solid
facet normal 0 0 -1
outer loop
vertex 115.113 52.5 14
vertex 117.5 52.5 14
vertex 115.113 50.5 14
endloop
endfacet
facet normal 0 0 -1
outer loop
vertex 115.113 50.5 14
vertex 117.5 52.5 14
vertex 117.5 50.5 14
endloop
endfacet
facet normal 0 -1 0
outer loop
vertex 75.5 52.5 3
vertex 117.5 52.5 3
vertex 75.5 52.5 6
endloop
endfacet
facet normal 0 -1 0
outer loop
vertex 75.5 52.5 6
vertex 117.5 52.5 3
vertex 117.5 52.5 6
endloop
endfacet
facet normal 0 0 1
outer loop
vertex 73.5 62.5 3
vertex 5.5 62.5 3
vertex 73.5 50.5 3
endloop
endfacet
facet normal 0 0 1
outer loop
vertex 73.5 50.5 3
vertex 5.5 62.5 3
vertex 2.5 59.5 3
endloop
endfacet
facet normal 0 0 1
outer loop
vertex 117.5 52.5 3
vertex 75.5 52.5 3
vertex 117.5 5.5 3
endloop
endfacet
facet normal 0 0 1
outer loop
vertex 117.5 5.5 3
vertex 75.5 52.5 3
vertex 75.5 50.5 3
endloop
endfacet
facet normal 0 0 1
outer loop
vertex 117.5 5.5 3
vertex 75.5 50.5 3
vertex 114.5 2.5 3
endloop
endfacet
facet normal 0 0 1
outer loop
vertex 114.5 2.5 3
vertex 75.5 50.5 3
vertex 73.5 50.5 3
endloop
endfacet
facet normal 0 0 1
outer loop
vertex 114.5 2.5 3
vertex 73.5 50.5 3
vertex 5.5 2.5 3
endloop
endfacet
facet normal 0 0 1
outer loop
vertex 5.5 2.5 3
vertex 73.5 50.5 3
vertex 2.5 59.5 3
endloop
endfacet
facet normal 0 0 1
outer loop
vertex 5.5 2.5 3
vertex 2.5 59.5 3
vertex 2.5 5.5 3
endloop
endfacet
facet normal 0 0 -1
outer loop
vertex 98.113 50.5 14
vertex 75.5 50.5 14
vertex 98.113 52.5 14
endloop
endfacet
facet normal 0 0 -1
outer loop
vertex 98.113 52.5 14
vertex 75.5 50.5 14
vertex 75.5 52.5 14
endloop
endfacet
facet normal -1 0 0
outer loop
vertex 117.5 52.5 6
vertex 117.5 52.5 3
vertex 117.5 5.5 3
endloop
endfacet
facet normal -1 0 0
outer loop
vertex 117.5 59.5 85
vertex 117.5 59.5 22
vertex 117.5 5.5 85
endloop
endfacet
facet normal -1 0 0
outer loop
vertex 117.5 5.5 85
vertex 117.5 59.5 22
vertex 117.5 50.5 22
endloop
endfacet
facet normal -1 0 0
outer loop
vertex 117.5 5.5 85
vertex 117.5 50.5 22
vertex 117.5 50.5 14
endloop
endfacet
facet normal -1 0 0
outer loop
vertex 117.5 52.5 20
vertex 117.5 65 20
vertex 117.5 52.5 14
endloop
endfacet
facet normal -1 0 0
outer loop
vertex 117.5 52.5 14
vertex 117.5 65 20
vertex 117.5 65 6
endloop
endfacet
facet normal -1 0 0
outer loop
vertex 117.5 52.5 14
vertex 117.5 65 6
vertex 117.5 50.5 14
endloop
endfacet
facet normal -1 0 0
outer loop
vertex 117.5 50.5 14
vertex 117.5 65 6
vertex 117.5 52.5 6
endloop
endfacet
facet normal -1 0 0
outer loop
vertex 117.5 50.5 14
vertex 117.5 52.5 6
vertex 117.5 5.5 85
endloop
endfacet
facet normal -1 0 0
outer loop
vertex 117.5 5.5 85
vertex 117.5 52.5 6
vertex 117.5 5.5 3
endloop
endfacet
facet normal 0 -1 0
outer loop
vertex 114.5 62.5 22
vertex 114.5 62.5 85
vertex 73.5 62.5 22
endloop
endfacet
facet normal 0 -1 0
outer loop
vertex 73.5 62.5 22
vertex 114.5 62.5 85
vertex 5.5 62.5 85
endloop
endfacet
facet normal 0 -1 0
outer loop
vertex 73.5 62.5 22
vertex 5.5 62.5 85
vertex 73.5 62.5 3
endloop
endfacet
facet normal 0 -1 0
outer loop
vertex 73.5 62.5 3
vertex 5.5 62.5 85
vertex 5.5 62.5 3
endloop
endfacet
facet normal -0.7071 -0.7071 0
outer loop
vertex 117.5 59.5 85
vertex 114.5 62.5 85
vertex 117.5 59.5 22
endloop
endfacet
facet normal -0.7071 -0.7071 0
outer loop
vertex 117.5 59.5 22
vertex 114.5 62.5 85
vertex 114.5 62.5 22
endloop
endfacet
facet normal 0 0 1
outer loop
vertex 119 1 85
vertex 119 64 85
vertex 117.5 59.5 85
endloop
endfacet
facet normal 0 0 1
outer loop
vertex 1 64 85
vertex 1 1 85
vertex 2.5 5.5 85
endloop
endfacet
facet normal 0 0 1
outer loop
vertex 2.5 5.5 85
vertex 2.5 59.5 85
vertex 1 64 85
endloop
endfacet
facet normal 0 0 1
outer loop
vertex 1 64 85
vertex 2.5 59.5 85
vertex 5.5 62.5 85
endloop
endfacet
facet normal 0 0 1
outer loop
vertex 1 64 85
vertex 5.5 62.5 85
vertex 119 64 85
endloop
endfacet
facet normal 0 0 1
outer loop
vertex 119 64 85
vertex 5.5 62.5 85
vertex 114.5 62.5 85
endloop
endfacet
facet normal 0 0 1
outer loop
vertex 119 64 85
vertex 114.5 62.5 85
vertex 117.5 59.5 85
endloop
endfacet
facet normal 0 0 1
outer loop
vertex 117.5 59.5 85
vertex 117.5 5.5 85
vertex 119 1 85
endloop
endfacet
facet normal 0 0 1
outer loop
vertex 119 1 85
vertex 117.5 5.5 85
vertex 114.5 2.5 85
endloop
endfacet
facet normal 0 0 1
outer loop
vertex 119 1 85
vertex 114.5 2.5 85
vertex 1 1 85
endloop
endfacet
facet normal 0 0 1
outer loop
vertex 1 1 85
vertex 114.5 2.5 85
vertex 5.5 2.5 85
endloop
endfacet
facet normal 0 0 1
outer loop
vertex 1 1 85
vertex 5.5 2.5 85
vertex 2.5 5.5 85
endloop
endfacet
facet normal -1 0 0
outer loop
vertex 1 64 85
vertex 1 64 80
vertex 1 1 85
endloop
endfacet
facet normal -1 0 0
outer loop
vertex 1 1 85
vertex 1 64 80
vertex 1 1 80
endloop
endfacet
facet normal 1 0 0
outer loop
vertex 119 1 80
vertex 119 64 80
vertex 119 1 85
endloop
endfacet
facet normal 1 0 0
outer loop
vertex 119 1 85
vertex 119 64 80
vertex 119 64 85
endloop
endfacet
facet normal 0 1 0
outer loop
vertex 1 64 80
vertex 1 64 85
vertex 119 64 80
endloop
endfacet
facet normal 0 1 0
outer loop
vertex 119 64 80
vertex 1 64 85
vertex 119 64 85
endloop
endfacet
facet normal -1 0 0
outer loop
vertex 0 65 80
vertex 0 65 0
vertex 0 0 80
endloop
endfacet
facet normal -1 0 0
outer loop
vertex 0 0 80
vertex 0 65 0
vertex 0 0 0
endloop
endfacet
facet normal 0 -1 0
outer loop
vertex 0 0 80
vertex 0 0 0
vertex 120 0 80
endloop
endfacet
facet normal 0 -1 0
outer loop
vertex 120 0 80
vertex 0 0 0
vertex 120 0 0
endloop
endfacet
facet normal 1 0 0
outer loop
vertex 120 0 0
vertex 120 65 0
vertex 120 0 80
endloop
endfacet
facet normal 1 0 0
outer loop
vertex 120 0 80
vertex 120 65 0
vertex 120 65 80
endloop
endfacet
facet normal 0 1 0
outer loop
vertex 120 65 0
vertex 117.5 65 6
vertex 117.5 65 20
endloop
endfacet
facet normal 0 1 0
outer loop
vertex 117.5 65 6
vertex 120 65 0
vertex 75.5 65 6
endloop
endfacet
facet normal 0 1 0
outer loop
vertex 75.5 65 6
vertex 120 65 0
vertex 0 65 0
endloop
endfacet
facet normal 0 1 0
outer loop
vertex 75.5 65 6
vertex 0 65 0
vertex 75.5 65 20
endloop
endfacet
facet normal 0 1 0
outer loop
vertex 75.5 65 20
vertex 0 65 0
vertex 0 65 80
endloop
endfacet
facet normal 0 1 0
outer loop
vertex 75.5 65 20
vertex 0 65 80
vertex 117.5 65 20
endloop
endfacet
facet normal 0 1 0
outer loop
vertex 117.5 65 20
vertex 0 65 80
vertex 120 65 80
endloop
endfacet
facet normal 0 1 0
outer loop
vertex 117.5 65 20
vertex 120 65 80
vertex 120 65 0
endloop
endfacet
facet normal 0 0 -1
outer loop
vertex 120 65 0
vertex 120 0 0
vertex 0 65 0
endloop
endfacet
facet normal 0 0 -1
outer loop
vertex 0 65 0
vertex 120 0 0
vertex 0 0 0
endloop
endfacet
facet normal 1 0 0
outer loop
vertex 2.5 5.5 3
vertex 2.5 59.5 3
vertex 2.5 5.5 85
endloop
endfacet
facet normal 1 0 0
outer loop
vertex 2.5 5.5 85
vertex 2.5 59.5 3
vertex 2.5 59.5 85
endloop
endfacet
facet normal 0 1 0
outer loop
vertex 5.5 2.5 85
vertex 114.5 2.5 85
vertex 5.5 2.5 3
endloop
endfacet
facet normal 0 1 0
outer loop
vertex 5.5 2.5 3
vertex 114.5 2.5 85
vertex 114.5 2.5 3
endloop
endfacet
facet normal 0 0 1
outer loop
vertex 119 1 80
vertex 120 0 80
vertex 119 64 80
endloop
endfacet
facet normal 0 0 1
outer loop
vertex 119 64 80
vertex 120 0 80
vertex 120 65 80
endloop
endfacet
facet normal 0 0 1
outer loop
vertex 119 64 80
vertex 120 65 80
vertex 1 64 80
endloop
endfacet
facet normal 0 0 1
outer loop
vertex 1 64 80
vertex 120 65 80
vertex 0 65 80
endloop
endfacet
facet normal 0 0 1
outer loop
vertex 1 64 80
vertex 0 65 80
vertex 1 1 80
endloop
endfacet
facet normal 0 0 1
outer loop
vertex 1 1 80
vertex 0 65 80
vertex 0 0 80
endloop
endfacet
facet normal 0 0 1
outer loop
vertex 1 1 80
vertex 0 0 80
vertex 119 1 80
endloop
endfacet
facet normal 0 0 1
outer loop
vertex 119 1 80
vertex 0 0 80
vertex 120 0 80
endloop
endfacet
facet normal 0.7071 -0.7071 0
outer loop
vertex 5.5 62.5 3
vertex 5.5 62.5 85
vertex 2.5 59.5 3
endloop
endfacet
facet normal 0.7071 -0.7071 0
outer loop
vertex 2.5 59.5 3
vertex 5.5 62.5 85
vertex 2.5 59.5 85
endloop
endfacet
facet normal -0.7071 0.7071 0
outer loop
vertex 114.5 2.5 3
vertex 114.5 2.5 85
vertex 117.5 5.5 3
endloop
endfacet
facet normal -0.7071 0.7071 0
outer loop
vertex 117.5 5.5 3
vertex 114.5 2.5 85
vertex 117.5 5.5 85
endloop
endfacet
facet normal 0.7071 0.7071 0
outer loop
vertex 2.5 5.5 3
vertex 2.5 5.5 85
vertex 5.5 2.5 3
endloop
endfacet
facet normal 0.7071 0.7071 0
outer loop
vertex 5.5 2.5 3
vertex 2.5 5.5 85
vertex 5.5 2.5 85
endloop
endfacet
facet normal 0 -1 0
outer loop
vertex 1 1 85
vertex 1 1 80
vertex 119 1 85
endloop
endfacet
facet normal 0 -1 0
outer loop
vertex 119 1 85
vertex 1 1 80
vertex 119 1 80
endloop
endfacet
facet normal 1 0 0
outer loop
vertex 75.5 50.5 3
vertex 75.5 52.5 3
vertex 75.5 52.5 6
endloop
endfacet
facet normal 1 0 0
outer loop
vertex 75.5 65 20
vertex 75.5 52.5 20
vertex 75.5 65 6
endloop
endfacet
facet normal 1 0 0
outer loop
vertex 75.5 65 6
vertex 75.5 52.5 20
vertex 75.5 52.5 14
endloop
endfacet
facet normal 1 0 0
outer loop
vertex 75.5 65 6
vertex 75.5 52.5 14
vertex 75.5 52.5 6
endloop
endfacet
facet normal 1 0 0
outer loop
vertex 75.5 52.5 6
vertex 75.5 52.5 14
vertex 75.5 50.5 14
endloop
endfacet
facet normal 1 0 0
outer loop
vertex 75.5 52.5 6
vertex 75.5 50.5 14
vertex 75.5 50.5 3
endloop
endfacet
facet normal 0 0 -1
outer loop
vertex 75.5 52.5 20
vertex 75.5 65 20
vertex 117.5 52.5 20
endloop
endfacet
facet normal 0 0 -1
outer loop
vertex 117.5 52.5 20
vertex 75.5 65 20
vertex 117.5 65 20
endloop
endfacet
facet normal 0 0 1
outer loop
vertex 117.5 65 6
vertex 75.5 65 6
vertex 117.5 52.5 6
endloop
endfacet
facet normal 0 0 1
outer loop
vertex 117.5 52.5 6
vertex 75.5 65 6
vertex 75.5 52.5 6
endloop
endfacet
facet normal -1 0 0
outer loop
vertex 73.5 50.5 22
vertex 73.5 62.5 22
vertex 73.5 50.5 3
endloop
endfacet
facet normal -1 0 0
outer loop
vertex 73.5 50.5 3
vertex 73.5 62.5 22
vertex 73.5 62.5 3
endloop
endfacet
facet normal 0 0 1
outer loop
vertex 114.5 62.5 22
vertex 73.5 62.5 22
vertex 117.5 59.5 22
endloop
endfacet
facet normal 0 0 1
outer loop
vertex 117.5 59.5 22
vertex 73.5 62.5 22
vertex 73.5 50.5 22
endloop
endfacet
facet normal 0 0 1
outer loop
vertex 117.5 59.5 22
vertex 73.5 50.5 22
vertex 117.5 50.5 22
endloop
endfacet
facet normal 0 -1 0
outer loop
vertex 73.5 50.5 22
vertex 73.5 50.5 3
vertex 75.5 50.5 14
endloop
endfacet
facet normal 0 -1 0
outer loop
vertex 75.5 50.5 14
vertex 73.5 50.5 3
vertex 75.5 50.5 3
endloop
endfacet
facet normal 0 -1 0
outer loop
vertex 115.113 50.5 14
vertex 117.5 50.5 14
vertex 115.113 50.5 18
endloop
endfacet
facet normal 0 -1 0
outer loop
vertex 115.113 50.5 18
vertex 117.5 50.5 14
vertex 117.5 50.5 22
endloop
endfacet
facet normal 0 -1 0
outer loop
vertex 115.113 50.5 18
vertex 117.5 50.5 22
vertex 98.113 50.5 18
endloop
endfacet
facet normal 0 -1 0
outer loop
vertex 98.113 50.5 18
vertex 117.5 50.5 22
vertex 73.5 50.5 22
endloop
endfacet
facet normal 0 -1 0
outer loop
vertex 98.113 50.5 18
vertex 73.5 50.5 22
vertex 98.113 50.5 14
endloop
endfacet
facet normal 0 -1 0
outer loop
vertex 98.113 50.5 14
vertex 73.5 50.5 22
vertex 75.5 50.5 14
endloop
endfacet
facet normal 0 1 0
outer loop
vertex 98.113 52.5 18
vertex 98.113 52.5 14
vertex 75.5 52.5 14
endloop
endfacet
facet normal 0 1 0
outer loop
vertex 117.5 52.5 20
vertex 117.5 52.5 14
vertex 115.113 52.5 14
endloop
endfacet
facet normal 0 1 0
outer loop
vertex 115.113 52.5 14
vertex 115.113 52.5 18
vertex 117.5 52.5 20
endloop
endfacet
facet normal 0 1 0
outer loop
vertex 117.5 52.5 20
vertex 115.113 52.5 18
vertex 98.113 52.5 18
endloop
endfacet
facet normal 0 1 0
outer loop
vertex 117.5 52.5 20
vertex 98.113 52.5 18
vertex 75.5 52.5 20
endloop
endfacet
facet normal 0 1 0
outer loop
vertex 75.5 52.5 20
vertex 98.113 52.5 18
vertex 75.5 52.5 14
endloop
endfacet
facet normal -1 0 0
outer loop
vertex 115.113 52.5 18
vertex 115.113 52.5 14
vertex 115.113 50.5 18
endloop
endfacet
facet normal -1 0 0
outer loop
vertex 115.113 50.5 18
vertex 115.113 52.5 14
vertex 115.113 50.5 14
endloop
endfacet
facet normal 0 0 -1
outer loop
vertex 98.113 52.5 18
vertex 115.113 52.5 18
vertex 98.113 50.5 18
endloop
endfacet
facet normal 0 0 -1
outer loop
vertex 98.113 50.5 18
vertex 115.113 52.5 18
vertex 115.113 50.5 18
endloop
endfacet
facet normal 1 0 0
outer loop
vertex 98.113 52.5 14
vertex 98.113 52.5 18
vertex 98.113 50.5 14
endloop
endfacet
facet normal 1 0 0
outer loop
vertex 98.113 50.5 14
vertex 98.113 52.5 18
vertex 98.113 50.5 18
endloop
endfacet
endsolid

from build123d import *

# Parameters (mm, degrees)
SKETCH2_W           = 120
SKETCH2_H           = 65
BOSS_EXTRUDE1_DEPTH = 85
SKETCH3_W           = 115
SKETCH3_H           = 60
CUT_EXTRUDE1_DEPTH  = 82
SKETCH4_W           = 5
SKETCH4_H           = 65
CUT_EXTRUDE2_DEPTH  = 1
SKETCH5_W           = 119
SKETCH5_H           = 5
CUT_EXTRUDE3_DEPTH  = 1
BOSS_EXTRUDE2_DEPTH = 85
SKETCH9_W           = 5
SKETCH9_H           = 64
CUT_EXTRUDE4_DEPTH  = 1
SKETCH10_W          = 118
SKETCH10_H          = 5
CUT_EXTRUDE5_DEPTH  = 1
SKETCH11_W          = 42
SKETCH11_H          = 14
CUT_EXTRUDE6_DEPTH  = 10
SKETCH12_W          = 42.071261004
SKETCH12_H          = 10
BOSS_EXTRUDE3_DEPTH = 4
SKETCH13_W          = 2
SKETCH13_H          = 10
BOSS_EXTRUDE4_DEPTH = 17
SKETCH14_W          = 44.402934601
SKETCH14_H          = 10
BOSS_EXTRUDE5_DEPTH = 2
SKETCH15_W          = 44.064994884
SKETCH15_H          = 8
BOSS_EXTRUDE6_DEPTH = 2
SKETCH16_W          = 2
SKETCH16_H          = 2
BOSS_EXTRUDE7_DEPTH = 12
SKETCH17_W          = 17
SKETCH17_H          = 4
CUT_EXTRUDE7_DEPTH  = 5


with BuildPart() as part:
    # Sketch2 → Boss-Extrude1 (new body)
    with BuildSketch(Plane.XY):
        with Locations((60, 32.5)):
            Rectangle(SKETCH2_W, SKETCH2_H)
    extrude(amount=BOSS_EXTRUDE1_DEPTH)

    # Sketch3 → Cut-Extrude1 (cut)
    with BuildSketch(Plane.XY.offset(85)):
        with Locations((60, 32.5)):
            Rectangle(SKETCH3_W, SKETCH3_H)
    extrude(amount=-CUT_EXTRUDE1_DEPTH, mode=Mode.SUBTRACT)

    # Sketch4 → Cut-Extrude2 (cut)
    with BuildSketch(Plane.ZY):
        with Locations((82.5, 32.5)):
            Rectangle(SKETCH4_W, SKETCH4_H)
    extrude(amount=-CUT_EXTRUDE2_DEPTH, mode=Mode.SUBTRACT)

    # Sketch5 → Cut-Extrude3 (cut)
    with BuildSketch(Plane(origin=(0, 65, 0), x_dir=(1, 0, 0), z_dir=(0, 1, 0))):
        with Locations((60.5, -82.5)):
            Rectangle(SKETCH5_W, SKETCH5_H)
    extrude(amount=-CUT_EXTRUDE3_DEPTH, mode=Mode.SUBTRACT)

    # Sketch7 → Boss-Extrude2 (add)
    with BuildSketch(Plane.XY.offset(85)):
        Polygon((2.5, 62.5), (2.5, 59.5), (5.5, 62.5), align=None)
        Polygon((117.5, 62.5), (114.5, 62.5), (117.5, 59.5), align=None)
        Polygon((117.5, 5.5), (117.5, 2.5), (114.5, 2.5), align=None)
        Polygon((2.5, 2.5), (2.5, 5.5), (5.5, 2.5), align=None)
    extrude(amount=-BOSS_EXTRUDE2_DEPTH)

    # Sketch9 → Cut-Extrude4 (cut)
    with BuildSketch(Plane(origin=(120, 0, 0), x_dir=(0, 0, -1), z_dir=(1, 0, 0))):
        with Locations((-82.5, 32)):
            Rectangle(SKETCH9_W, SKETCH9_H)
    extrude(amount=-CUT_EXTRUDE4_DEPTH, mode=Mode.SUBTRACT)

    # Sketch10 → Cut-Extrude5 (cut)
    with BuildSketch(Plane.XZ):
        with Locations((60, 82.5)):
            Rectangle(SKETCH10_W, SKETCH10_H)
    extrude(amount=-CUT_EXTRUDE5_DEPTH, mode=Mode.SUBTRACT)

    # Sketch11 → Cut-Extrude6 (cut)
    with BuildSketch(Plane(origin=(0, 65, 0), x_dir=(1, 0, 0), z_dir=(0, 1, 0))):
        with Locations((96.5, -13)):
            Rectangle(SKETCH11_W, SKETCH11_H)
    extrude(amount=-CUT_EXTRUDE6_DEPTH, mode=Mode.SUBTRACT)

    # Sketch12 → Boss-Extrude3 (add)
    with BuildSketch(Plane.XY.offset(6)):
        with Locations((96.535630502, 57.5)):
            Rectangle(SKETCH12_W, SKETCH12_H)
    extrude(amount=-BOSS_EXTRUDE3_DEPTH)

    # Sketch13 → Boss-Extrude4 (add)
    with BuildSketch(Plane.XY.offset(3)):
        with Locations((74.5, 57.5)):
            Rectangle(SKETCH13_W, SKETCH13_H)
    extrude(amount=BOSS_EXTRUDE4_DEPTH)

    # Sketch14 → Boss-Extrude5 (add)
    with BuildSketch(Plane.XY.offset(20)):
        with Locations((95.701467301, 57.5)):
            Rectangle(SKETCH14_W, SKETCH14_H)
    extrude(amount=BOSS_EXTRUDE5_DEPTH)

    # Sketch15 → Boss-Extrude6 (add)
    with BuildSketch(Plane.XZ.offset(-52.5)):
        with Locations((95.532497442, 18)):
            Rectangle(SKETCH15_W, SKETCH15_H)
    extrude(amount=BOSS_EXTRUDE6_DEPTH)

    # Sketch16 → Boss-Extrude7 (add)
    with BuildSketch(Plane.XY.offset(3)):
        with Locations((74.5, 51.5)):
            Rectangle(SKETCH16_W, SKETCH16_H)
    extrude(amount=BOSS_EXTRUDE7_DEPTH)

    # Sketch17 → Cut-Extrude7 (cut)
    with BuildSketch(Plane(origin=(0, 52.5, 0), x_dir=(1, 0, 0), z_dir=(0, 1, 0))):
        with Locations((106.612593264, -16)):
            Rectangle(SKETCH17_W, SKETCH17_H)
    extrude(amount=-CUT_EXTRUDE7_DEPTH, mode=Mode.SUBTRACT)


solid = part.part
